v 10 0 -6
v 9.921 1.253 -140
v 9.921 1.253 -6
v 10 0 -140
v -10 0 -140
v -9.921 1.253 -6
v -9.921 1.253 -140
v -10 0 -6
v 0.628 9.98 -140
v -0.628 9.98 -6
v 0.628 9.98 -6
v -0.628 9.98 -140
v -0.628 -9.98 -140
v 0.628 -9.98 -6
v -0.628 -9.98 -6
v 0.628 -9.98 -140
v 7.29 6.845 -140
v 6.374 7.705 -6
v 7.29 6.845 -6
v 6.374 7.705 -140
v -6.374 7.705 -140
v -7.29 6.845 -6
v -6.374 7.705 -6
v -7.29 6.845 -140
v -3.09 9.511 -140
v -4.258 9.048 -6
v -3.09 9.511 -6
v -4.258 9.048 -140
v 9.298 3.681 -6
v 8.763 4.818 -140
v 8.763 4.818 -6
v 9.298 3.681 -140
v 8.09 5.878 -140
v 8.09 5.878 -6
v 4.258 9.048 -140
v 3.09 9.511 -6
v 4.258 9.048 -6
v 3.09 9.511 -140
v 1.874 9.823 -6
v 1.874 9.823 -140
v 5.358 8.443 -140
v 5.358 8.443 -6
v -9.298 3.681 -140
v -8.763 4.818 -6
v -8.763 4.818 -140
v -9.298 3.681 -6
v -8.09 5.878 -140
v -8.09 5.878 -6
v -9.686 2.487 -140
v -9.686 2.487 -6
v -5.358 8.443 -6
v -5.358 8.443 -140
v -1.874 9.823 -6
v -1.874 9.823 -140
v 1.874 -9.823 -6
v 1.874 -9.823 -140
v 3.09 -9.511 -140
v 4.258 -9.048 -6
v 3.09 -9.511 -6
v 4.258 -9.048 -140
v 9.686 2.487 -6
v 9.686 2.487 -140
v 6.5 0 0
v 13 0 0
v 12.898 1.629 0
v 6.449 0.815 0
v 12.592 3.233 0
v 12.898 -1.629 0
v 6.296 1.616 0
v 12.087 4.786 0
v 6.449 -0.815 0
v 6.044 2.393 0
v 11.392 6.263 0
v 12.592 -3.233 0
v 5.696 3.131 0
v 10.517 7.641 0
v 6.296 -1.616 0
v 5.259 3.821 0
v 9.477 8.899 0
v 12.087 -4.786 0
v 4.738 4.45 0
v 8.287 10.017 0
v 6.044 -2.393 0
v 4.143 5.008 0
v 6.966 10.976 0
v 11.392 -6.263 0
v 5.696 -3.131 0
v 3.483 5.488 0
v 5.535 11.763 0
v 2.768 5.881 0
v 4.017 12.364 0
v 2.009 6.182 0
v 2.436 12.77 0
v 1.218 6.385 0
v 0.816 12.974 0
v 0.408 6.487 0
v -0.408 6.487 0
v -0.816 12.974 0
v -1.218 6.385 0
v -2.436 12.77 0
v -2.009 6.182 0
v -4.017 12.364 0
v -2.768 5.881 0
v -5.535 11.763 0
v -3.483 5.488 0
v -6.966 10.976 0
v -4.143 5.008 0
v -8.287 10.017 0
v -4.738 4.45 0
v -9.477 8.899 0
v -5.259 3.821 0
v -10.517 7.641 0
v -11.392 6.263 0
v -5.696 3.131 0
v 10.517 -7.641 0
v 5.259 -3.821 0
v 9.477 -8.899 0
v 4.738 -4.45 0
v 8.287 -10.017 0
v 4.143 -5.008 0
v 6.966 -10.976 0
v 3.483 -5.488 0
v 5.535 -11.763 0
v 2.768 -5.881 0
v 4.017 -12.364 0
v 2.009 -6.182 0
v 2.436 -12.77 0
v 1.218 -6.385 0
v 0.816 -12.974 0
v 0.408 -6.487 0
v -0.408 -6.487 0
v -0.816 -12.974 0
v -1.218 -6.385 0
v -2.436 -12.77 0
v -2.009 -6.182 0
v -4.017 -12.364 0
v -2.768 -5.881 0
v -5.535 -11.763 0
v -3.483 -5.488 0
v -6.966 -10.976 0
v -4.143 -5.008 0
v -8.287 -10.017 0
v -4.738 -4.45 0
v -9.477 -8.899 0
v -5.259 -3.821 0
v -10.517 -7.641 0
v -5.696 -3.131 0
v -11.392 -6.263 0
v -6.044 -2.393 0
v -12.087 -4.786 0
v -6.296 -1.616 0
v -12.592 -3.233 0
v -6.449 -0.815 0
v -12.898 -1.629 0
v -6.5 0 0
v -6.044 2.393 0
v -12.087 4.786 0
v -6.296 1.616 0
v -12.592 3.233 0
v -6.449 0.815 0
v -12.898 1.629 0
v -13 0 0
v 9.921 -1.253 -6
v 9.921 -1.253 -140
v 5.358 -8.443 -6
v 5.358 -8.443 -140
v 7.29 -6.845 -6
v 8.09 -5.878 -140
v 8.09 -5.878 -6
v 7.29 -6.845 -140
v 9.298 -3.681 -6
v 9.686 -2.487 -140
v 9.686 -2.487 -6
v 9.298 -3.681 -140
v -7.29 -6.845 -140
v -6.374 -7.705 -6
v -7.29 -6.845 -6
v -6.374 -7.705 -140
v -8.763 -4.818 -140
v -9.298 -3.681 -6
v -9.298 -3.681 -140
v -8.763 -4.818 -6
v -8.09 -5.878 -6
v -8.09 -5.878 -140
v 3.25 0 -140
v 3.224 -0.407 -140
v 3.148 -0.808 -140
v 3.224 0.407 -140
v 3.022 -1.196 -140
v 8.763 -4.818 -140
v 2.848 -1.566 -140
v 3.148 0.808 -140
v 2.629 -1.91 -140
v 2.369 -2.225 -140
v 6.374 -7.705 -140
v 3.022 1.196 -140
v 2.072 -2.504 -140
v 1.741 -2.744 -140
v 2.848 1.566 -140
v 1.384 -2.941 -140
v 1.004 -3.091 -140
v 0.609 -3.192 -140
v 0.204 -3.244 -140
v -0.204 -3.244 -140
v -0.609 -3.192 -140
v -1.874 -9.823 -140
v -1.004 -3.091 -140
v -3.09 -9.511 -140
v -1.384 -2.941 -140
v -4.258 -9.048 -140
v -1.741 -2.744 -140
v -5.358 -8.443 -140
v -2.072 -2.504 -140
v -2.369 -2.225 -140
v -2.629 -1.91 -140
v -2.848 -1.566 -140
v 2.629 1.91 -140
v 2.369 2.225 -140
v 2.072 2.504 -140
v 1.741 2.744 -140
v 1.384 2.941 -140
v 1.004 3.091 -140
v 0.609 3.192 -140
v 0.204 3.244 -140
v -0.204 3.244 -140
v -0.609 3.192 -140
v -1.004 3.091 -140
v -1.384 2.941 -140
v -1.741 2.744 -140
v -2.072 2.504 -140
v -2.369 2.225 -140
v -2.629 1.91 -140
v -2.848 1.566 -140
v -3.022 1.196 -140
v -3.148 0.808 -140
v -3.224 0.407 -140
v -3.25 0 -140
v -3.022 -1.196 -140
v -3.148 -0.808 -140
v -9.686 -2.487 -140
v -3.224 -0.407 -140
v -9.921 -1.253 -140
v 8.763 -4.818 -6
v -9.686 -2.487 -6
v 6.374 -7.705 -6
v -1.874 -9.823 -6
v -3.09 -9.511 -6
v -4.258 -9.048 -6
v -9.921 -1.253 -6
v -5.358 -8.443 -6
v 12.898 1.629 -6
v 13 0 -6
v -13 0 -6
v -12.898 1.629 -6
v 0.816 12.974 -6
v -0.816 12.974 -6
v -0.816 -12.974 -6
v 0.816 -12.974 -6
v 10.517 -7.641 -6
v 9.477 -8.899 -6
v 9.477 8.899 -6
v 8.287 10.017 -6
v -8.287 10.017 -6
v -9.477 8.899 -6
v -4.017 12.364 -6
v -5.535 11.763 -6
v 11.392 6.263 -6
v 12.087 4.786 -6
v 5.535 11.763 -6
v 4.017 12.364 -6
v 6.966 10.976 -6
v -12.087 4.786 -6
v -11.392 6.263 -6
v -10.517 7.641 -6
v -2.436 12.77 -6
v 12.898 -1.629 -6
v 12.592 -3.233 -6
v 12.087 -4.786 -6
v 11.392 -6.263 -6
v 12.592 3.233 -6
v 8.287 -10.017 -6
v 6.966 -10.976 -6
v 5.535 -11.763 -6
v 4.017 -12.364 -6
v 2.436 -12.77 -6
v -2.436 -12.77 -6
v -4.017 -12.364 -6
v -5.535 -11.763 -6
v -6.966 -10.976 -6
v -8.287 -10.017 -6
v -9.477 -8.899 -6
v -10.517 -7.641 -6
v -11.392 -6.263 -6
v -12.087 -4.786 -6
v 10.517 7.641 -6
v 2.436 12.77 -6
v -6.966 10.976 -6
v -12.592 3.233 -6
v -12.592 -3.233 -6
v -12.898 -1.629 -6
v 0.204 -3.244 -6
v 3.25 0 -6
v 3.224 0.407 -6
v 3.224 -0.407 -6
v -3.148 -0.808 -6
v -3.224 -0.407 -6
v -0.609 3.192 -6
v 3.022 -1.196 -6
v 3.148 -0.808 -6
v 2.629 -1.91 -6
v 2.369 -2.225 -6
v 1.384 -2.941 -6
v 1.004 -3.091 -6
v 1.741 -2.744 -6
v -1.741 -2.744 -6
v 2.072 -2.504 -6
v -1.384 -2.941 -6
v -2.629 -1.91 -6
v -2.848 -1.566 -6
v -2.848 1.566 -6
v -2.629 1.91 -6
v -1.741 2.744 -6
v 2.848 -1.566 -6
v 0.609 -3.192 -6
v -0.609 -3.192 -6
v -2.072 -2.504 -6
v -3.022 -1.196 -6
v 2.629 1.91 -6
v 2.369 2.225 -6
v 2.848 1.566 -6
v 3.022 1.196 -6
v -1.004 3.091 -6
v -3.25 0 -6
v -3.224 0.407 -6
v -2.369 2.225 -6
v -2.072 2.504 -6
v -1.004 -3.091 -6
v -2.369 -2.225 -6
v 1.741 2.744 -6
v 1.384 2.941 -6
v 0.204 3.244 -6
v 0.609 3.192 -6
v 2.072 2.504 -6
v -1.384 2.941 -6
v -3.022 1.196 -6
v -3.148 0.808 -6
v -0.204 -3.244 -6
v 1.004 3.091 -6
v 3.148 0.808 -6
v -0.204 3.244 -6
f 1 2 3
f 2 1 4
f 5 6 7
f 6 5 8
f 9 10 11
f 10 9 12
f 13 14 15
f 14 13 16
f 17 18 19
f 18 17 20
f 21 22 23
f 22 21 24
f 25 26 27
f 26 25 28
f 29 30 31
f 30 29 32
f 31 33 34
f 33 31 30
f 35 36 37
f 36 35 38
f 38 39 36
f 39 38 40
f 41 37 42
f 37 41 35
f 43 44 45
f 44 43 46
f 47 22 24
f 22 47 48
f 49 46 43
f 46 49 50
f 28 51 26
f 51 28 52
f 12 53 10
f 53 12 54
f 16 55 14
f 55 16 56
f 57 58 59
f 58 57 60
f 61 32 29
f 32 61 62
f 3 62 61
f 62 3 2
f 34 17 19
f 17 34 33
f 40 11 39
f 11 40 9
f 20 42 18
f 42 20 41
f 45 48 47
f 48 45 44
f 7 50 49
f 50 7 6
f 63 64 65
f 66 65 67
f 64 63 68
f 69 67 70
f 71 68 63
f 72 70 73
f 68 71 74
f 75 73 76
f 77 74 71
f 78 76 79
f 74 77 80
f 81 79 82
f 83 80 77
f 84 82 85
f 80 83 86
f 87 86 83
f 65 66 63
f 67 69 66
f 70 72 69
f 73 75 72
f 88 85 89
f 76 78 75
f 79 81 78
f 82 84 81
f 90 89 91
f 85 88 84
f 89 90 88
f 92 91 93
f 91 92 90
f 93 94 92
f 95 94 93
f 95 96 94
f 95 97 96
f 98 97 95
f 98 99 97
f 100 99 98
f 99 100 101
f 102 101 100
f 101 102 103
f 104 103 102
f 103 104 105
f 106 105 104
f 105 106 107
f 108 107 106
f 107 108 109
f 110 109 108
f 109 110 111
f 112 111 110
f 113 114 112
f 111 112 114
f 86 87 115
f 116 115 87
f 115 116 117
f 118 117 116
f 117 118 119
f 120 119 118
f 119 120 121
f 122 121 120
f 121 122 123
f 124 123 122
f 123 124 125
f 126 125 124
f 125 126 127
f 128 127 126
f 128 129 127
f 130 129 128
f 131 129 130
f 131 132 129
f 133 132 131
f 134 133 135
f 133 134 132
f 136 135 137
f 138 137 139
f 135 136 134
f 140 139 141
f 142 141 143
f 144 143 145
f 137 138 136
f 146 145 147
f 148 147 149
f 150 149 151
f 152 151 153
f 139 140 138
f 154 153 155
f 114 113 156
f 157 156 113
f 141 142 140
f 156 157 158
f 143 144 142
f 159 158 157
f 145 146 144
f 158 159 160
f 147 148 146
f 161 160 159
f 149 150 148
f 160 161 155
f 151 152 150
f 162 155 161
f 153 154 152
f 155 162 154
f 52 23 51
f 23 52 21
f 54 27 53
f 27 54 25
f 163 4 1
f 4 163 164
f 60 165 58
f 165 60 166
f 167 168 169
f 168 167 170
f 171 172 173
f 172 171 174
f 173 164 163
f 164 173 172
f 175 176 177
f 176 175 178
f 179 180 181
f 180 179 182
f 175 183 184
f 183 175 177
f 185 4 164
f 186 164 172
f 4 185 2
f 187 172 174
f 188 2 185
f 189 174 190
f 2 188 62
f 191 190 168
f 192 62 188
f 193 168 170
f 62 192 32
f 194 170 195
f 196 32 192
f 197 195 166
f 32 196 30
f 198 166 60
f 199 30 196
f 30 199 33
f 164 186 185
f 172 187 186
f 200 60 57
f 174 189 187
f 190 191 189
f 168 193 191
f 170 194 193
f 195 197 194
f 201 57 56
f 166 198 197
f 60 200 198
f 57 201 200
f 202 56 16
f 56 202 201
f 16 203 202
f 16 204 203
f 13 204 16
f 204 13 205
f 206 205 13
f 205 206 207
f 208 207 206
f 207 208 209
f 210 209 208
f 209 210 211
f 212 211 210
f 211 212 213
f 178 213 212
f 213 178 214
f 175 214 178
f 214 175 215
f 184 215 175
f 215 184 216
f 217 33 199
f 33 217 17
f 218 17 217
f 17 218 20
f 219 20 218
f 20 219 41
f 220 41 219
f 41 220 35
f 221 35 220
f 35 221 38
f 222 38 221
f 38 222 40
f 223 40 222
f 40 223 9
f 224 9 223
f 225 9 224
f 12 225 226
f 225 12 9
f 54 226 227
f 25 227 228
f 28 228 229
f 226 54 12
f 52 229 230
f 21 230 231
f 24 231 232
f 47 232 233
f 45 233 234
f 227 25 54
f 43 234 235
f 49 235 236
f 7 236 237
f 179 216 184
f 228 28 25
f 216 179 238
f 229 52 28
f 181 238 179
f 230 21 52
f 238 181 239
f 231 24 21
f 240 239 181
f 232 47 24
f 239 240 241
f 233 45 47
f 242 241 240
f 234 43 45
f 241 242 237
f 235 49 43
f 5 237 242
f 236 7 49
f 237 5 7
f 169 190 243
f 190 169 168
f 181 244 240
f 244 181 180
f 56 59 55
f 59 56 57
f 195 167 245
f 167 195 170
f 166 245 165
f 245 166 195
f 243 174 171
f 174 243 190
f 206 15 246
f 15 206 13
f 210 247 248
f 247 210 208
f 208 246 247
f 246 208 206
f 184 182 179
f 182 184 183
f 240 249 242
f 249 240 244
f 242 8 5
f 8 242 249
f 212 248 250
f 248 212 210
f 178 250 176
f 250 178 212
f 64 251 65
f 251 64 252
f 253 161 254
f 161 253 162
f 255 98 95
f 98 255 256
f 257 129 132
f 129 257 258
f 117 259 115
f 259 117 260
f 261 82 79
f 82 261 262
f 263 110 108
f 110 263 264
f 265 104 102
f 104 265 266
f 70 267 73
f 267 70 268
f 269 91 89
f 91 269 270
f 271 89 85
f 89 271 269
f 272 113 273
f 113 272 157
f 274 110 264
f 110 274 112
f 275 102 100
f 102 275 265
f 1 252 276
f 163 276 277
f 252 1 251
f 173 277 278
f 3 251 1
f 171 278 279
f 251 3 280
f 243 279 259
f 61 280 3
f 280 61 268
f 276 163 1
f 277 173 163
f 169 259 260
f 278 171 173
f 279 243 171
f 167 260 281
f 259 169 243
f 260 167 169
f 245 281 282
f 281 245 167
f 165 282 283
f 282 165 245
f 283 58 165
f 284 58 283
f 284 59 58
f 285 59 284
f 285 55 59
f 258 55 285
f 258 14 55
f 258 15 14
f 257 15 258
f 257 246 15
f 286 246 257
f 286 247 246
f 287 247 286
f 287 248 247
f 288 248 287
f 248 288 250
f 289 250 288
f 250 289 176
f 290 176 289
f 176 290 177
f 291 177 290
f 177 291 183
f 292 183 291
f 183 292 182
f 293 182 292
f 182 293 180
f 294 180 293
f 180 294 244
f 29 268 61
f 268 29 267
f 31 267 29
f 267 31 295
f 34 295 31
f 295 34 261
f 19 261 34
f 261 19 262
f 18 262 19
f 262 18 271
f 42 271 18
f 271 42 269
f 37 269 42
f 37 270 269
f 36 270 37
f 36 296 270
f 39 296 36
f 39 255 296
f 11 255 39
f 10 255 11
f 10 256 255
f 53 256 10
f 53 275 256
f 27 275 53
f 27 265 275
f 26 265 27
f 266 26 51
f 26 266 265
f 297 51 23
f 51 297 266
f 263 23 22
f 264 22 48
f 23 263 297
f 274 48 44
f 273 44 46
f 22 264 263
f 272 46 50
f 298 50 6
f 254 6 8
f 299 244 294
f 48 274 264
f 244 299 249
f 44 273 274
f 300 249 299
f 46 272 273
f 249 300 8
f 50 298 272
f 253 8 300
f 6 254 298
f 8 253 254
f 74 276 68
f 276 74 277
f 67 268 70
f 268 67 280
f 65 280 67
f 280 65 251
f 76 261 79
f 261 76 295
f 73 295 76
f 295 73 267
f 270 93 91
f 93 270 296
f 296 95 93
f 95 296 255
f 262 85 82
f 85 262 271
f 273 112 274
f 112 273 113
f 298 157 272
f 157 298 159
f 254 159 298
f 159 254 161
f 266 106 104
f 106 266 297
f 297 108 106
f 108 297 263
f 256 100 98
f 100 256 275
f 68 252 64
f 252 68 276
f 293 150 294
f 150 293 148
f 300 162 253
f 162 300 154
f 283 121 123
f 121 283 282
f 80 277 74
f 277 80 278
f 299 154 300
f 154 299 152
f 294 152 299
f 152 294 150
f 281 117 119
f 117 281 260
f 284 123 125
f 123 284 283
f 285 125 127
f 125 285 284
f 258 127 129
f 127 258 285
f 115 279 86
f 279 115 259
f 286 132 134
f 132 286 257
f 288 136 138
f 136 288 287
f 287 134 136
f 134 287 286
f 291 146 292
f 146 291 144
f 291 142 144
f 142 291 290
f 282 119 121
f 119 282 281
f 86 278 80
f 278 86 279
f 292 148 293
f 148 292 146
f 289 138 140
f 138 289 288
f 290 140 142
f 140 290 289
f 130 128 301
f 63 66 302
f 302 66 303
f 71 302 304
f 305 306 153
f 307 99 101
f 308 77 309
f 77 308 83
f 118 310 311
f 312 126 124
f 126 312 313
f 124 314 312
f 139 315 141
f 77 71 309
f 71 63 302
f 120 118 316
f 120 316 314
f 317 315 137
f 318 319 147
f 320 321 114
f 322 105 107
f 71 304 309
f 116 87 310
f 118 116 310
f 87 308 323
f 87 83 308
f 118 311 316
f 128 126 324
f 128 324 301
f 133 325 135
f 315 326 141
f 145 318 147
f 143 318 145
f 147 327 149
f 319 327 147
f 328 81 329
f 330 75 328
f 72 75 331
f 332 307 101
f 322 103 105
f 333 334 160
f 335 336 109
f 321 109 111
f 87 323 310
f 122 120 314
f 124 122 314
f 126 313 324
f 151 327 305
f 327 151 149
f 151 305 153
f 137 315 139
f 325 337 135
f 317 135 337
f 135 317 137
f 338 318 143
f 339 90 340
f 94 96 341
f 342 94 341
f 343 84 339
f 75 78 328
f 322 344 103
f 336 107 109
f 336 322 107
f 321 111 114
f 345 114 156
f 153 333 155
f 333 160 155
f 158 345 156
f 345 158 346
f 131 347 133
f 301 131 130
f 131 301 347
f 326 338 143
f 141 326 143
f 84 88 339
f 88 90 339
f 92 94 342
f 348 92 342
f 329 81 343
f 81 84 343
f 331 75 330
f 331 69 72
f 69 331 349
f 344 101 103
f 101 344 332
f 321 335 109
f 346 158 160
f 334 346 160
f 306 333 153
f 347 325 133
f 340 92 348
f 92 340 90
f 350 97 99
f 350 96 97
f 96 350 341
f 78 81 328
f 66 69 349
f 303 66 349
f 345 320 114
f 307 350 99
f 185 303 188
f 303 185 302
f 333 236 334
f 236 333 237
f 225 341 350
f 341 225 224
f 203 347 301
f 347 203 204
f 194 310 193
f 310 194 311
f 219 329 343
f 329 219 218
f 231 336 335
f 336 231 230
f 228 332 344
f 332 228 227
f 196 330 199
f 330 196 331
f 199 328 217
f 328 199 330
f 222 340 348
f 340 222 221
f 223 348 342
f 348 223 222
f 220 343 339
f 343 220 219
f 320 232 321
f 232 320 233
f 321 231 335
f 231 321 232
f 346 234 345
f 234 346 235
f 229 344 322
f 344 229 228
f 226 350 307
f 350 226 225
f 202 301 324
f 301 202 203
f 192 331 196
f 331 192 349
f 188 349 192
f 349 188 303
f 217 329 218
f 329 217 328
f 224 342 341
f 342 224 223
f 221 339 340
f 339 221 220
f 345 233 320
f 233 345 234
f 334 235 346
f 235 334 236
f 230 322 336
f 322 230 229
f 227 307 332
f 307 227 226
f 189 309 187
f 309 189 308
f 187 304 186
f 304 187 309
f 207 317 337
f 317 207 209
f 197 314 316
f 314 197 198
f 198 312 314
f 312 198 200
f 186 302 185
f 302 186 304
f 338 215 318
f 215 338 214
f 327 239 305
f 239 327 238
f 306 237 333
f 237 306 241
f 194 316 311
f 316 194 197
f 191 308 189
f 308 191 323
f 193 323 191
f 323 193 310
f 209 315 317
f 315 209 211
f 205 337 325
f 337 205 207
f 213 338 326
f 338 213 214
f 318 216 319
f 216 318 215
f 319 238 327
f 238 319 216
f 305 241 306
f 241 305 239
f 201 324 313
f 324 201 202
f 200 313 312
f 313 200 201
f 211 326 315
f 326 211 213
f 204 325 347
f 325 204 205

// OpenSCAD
$fn = 50;


difference() {
	union() {
		translate(v = [0, 0, -140.0000000000]) {
			cylinder(h = 140, r = 10.0000000000);
		}
		translate(v = [0, 0, -6.0000000000]) {
			cylinder(h = 6, r = 13.0000000000);
		}
	}
	union() {
		translate(v = [0, 0, 0]) {
			rotate(a = [0, 0, 0]) {
				difference() {
					union() {
						#translate(v = [0, 0, -140.0000000000]) {
							cylinder(h = 140, r = 2.2500000000);
						}
						#translate(v = [0, 0, -6]) {
							cylinder(h = 6, r1 = 3.2500000000, r2 = 6.5000000000);
						}
						#translate(v = [0, 0, -140.0000000000]) {
							cylinder(h = 140, r = 3.2500000000);
						}
						#translate(v = [0, 0, -140.0000000000]) {
							cylinder(h = 140, r = 2.2500000000);
						}
					}
					union();
				}
			}
		}
	}
}
